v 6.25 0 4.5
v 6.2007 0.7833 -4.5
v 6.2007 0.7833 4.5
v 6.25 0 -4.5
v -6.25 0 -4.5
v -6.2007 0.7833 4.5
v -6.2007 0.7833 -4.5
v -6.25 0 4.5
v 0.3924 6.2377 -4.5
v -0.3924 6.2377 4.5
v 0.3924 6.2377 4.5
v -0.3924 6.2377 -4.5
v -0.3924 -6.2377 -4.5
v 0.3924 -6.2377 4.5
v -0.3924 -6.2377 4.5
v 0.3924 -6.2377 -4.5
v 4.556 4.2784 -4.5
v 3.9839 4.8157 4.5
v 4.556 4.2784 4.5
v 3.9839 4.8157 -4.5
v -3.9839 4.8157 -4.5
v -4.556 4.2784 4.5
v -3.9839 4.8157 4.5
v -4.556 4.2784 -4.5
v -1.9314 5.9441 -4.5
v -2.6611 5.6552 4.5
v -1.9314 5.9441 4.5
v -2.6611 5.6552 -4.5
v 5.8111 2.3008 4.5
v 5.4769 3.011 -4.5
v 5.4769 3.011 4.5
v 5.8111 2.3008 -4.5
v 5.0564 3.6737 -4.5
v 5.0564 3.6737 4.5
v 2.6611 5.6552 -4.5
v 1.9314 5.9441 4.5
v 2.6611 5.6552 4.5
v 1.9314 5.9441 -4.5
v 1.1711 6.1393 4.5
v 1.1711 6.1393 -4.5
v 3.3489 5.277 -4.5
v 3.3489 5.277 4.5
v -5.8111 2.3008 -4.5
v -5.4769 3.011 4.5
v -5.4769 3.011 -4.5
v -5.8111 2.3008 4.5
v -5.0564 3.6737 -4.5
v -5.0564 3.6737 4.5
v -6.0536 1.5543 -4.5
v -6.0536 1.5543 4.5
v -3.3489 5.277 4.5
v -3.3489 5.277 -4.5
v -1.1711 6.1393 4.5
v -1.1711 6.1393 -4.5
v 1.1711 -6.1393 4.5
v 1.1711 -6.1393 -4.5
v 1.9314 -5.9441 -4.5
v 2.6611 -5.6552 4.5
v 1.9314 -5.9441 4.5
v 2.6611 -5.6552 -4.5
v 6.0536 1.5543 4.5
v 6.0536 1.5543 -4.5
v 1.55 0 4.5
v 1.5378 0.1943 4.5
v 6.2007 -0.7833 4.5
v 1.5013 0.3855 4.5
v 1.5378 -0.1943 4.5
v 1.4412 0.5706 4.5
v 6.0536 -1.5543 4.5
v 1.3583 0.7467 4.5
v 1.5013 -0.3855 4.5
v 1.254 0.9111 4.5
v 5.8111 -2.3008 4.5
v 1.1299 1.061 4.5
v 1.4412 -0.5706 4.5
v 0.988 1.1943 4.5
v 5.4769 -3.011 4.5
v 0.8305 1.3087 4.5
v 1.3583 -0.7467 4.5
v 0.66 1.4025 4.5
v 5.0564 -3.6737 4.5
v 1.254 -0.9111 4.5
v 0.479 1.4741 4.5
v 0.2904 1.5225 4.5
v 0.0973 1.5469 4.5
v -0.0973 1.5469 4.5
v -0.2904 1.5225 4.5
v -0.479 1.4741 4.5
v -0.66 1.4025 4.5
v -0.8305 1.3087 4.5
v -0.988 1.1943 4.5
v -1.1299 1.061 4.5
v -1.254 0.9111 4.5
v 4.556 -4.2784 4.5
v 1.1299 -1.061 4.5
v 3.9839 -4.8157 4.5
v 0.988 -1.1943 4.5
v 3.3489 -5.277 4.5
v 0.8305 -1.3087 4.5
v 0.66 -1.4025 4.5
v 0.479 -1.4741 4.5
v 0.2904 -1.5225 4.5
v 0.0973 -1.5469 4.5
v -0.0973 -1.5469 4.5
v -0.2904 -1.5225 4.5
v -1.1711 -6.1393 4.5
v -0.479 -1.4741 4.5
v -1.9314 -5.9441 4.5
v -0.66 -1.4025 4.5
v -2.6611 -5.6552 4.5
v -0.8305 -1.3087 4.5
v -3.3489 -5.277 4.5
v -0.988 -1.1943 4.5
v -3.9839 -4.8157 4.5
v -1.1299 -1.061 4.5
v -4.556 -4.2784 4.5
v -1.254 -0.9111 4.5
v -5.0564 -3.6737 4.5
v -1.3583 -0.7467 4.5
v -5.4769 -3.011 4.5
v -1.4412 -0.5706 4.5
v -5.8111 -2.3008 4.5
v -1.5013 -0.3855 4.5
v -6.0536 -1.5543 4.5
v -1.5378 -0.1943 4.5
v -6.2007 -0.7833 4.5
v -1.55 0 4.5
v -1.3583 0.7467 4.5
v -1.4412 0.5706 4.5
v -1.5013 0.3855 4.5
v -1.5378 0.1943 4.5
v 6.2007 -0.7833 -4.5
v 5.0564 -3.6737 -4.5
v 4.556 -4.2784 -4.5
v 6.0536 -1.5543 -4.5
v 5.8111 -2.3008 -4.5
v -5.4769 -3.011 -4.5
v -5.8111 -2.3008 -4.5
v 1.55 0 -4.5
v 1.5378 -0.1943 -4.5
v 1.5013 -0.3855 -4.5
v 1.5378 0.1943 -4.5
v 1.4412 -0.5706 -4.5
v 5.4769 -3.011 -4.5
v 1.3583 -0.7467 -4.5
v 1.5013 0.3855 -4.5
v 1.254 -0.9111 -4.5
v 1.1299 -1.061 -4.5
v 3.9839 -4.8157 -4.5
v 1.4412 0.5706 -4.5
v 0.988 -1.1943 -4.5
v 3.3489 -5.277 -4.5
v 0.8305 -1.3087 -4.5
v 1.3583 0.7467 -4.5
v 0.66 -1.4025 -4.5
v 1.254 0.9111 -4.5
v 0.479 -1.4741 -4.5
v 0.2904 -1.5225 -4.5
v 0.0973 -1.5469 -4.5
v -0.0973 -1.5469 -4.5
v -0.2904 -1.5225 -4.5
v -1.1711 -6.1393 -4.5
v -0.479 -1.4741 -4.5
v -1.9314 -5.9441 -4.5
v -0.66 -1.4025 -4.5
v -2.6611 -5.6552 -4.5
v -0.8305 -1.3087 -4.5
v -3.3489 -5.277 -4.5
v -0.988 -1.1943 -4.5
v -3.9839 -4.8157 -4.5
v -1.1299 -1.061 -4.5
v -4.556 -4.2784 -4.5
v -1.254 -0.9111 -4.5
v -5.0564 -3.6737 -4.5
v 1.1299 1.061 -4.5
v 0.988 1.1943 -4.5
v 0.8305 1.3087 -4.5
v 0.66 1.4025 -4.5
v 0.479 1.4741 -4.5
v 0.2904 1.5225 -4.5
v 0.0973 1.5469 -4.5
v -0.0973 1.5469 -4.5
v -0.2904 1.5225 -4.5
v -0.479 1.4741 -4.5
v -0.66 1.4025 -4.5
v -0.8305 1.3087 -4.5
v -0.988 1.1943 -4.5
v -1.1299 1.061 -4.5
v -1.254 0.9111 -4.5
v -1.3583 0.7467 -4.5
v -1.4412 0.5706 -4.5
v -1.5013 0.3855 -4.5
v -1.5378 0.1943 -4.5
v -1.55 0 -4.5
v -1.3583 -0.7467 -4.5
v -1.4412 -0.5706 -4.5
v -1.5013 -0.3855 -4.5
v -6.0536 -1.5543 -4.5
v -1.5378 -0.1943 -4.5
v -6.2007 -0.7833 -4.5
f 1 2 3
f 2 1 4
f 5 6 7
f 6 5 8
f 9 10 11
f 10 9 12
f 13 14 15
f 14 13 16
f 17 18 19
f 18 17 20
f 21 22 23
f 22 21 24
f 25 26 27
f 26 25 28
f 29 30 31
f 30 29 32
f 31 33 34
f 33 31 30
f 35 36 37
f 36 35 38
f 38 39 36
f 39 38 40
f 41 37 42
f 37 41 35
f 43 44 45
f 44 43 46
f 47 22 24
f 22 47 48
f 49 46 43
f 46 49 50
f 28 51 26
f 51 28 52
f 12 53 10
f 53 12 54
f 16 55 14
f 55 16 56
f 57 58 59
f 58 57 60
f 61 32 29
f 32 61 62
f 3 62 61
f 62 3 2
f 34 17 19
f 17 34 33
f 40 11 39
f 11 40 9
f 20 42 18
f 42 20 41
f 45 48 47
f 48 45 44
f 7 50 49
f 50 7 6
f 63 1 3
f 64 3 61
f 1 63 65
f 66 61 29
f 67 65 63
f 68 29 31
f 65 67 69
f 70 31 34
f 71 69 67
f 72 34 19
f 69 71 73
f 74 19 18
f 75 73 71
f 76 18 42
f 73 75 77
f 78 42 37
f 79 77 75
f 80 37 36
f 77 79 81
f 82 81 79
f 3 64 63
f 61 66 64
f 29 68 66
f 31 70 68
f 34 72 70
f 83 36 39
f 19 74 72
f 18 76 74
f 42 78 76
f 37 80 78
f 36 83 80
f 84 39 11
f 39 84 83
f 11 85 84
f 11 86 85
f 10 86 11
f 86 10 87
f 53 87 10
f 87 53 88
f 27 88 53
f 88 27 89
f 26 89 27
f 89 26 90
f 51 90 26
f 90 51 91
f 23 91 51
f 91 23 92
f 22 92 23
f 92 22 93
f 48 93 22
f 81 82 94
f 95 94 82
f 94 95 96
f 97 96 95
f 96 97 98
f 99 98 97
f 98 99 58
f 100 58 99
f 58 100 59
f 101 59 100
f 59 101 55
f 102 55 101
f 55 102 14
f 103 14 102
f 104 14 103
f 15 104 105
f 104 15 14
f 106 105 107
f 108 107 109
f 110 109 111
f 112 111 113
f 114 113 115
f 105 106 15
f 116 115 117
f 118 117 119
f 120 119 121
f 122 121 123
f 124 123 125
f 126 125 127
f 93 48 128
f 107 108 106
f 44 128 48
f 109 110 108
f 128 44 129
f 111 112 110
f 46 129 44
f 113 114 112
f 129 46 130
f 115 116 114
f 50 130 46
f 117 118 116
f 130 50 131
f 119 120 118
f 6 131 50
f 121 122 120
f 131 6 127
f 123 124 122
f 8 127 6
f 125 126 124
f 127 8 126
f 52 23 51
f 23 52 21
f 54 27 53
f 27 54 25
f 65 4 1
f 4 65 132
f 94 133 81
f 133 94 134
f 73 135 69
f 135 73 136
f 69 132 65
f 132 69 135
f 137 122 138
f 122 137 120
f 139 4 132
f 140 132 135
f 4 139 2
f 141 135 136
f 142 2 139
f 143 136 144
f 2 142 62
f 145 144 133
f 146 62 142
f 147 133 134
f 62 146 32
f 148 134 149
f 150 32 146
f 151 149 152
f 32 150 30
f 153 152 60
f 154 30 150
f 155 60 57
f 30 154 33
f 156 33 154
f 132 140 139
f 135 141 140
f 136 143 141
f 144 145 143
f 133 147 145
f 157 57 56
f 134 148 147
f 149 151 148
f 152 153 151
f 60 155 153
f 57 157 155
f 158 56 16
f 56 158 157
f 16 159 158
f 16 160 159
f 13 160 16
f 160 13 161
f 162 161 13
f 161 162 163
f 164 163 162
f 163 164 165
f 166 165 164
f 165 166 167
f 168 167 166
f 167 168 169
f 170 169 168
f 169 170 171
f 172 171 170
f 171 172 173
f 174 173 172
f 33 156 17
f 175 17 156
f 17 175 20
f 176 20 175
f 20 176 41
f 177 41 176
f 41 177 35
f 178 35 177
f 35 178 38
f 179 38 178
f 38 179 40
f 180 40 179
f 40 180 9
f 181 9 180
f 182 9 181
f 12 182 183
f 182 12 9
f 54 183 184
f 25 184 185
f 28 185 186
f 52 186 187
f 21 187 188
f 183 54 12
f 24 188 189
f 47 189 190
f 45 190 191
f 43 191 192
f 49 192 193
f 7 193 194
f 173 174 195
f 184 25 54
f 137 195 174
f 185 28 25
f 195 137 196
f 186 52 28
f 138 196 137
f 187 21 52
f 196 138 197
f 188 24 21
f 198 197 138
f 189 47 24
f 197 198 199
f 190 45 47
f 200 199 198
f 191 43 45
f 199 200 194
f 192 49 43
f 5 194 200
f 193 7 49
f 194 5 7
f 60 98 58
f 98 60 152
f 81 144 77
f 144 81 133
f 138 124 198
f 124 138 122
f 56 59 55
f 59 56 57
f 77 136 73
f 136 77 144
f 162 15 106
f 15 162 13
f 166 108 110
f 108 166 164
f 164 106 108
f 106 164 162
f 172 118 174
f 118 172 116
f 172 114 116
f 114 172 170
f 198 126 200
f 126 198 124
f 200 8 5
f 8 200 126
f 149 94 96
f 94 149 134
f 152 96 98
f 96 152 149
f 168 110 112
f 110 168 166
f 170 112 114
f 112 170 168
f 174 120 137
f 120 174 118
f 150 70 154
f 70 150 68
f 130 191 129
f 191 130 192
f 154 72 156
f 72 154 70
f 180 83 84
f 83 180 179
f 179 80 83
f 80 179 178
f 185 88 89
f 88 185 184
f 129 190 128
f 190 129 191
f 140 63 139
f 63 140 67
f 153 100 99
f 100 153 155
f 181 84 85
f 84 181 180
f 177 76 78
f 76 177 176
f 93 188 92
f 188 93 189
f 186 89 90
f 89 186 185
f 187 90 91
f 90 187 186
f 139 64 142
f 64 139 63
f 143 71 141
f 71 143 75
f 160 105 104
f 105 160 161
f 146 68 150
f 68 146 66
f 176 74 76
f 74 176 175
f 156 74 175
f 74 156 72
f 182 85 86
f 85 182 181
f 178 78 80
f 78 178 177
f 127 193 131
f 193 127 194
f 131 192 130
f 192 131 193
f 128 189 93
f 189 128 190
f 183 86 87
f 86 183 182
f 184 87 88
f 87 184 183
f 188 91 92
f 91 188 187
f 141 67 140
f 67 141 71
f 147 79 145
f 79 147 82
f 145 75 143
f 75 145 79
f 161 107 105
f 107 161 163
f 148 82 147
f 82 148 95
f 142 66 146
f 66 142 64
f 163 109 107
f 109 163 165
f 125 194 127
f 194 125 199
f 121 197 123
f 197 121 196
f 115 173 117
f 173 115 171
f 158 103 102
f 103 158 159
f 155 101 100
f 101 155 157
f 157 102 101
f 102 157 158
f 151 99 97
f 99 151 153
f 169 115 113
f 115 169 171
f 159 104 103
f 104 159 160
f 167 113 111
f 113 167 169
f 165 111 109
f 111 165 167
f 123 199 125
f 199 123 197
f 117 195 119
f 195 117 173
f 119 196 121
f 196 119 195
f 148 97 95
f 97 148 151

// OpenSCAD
$fn = 50;


difference() {
	union() {
		translate(v = [0, 0, -4.5000000000]) {
			cylinder(h = 9, r = 6.2500000000);
		}
	}
	union() {
		translate(v = [0, 0, -100.0000000000]) {
			cylinder(h = 200, r = 1.5500000000);
		}
	}
}
